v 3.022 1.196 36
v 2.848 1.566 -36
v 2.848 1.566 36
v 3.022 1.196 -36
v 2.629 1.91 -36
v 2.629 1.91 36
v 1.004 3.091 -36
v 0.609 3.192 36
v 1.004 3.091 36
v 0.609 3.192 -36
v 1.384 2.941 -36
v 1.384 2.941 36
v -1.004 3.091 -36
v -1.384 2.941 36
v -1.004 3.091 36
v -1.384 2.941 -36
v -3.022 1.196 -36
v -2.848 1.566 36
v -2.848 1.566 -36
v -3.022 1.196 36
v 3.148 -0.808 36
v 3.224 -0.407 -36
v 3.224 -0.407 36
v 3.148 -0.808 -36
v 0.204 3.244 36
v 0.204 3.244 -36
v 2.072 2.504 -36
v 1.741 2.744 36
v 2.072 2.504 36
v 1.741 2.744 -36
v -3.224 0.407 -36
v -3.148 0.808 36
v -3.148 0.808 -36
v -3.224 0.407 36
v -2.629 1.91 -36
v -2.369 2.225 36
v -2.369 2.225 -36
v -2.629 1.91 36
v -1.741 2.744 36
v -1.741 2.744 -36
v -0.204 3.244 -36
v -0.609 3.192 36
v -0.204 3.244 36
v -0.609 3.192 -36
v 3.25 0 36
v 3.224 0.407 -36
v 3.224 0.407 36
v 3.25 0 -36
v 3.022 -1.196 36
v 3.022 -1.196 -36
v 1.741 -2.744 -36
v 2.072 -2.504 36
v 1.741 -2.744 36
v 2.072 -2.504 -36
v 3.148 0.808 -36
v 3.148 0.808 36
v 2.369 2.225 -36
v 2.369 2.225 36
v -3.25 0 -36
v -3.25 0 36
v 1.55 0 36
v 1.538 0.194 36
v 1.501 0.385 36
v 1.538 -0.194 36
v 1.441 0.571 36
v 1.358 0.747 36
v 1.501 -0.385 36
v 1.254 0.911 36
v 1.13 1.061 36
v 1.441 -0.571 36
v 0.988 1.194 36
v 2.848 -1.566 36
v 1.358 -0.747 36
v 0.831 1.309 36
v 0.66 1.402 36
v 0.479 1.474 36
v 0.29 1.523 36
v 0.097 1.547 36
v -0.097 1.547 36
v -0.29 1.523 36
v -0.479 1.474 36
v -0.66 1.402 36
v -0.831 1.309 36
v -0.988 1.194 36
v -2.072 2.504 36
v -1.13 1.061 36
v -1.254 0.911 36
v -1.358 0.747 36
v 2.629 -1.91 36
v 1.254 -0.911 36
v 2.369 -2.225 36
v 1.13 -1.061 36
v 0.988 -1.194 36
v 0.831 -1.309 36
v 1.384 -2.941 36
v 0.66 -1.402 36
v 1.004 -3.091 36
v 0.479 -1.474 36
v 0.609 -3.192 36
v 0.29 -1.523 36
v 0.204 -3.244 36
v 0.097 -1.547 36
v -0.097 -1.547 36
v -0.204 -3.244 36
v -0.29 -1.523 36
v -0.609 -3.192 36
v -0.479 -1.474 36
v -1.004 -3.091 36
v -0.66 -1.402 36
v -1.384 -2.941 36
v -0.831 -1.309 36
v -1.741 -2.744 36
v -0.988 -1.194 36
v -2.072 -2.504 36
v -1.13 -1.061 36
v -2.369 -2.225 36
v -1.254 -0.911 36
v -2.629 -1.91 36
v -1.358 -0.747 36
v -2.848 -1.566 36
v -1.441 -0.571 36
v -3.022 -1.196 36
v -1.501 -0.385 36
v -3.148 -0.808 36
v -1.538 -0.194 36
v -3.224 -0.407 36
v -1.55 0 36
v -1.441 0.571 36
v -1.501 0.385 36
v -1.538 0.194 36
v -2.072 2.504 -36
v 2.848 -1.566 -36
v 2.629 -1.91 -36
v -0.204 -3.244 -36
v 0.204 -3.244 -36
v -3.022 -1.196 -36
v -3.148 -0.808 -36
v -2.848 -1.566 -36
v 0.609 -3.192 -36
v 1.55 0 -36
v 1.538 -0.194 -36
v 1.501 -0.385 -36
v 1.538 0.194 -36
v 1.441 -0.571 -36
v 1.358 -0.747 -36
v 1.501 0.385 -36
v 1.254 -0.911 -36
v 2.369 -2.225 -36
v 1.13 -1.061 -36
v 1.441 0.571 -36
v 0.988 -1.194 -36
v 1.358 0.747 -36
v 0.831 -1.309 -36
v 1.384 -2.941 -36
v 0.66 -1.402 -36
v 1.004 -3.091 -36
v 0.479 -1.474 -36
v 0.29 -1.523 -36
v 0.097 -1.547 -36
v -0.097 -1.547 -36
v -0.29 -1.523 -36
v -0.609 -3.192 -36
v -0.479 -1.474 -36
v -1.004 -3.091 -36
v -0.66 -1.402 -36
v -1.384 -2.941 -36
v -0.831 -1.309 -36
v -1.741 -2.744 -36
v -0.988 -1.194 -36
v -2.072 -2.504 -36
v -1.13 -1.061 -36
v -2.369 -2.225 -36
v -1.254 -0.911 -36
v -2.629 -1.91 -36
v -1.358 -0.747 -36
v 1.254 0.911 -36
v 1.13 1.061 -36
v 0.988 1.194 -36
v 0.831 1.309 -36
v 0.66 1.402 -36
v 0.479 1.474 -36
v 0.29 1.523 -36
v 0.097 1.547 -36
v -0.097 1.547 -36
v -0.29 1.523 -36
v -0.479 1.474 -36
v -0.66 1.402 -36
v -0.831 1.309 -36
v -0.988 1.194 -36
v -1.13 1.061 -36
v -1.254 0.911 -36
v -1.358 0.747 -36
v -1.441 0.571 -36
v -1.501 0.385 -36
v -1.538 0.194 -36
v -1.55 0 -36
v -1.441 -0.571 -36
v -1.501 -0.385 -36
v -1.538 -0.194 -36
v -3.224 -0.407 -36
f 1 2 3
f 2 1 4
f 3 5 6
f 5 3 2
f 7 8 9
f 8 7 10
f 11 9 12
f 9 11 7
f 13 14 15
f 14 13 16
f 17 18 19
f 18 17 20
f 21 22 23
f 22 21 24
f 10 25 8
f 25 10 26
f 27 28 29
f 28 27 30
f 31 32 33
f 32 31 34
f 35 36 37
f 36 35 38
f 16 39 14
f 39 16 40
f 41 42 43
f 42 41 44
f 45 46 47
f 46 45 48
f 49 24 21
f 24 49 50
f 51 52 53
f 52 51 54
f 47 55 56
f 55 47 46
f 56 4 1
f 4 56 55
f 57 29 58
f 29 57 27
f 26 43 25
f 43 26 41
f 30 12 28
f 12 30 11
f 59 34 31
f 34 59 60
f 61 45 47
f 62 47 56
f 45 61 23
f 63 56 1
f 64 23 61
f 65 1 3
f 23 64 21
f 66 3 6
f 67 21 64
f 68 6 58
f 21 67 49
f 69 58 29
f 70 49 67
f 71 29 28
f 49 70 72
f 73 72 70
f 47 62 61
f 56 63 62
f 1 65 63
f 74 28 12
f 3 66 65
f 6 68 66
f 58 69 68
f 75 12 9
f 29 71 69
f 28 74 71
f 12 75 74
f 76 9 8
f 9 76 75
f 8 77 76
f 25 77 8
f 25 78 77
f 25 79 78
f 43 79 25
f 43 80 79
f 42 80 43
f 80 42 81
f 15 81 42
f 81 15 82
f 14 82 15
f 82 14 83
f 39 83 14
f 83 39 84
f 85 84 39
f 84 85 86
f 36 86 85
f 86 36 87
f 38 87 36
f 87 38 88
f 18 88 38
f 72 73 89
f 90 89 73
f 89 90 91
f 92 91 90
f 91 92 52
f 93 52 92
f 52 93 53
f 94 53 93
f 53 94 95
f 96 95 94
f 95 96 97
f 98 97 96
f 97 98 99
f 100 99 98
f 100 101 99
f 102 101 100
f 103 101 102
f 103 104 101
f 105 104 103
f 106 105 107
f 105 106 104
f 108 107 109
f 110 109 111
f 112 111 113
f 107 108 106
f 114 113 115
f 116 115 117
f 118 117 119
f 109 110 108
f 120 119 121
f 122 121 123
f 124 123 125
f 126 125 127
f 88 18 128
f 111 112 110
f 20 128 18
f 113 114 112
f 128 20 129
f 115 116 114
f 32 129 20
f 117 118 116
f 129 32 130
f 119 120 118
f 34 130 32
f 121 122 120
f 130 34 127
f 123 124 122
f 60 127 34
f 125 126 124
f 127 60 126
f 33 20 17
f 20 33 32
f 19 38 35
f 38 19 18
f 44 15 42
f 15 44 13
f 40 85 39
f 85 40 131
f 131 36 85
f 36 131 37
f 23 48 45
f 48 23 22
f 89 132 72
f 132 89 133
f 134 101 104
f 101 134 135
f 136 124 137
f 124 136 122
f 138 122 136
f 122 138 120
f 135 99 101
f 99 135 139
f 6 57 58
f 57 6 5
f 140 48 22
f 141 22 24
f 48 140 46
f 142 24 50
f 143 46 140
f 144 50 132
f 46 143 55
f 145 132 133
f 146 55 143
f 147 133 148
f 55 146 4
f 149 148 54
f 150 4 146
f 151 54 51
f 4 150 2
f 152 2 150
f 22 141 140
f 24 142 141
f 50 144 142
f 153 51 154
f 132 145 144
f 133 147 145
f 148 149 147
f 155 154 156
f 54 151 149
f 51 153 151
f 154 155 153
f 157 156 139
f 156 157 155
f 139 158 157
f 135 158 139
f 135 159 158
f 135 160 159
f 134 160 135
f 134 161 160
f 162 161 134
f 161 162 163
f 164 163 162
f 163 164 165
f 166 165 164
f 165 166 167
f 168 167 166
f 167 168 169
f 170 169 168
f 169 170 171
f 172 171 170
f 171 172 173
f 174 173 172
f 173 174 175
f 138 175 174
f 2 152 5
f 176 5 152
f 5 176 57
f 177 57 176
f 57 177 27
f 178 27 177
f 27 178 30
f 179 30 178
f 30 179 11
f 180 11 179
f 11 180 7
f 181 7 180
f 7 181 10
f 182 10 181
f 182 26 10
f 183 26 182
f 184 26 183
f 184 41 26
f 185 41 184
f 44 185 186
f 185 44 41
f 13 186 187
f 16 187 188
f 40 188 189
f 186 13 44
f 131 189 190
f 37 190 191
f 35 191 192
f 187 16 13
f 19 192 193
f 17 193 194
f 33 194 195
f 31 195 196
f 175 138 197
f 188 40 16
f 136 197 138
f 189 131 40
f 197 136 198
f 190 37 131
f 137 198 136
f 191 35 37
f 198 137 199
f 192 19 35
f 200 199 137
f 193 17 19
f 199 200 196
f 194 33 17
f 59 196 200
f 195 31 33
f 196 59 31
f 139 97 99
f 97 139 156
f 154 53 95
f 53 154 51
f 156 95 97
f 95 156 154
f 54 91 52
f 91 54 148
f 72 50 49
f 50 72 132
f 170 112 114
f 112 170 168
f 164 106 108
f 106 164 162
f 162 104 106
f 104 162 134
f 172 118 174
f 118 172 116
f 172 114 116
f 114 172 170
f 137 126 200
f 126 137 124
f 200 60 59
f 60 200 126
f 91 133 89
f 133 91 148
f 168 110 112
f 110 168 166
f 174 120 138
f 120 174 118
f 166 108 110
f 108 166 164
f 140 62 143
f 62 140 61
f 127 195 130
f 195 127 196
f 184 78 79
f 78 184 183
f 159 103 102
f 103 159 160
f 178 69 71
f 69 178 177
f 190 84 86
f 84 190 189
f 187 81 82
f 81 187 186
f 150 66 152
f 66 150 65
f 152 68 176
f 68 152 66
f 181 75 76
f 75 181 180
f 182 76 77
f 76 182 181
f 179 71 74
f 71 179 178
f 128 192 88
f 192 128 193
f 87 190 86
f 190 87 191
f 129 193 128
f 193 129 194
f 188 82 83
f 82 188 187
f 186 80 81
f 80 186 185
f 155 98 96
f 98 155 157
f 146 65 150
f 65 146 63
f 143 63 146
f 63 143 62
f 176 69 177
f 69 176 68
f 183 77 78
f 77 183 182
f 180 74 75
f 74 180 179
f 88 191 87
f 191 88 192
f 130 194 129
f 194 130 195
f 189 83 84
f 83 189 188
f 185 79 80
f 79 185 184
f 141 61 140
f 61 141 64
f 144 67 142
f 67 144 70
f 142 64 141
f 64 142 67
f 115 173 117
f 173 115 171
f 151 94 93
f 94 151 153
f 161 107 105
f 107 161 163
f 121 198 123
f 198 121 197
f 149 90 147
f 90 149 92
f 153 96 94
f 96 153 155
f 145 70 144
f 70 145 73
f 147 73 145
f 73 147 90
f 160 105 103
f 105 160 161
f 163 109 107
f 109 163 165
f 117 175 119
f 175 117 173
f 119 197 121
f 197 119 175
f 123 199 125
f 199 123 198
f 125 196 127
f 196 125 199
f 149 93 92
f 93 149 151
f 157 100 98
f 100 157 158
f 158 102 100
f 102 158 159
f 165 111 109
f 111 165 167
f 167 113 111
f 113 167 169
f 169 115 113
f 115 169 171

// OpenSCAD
$fn = 50;


difference() {
	union() {
		translate(v = [0, 0, -36.0000000000]) {
			cylinder(h = 72, r = 3.2500000000);
		}
	}
	union() {
		translate(v = [0, 0, -100.0000000000]) {
			cylinder(h = 200, r = 1.5500000000);
		}
	}
}
